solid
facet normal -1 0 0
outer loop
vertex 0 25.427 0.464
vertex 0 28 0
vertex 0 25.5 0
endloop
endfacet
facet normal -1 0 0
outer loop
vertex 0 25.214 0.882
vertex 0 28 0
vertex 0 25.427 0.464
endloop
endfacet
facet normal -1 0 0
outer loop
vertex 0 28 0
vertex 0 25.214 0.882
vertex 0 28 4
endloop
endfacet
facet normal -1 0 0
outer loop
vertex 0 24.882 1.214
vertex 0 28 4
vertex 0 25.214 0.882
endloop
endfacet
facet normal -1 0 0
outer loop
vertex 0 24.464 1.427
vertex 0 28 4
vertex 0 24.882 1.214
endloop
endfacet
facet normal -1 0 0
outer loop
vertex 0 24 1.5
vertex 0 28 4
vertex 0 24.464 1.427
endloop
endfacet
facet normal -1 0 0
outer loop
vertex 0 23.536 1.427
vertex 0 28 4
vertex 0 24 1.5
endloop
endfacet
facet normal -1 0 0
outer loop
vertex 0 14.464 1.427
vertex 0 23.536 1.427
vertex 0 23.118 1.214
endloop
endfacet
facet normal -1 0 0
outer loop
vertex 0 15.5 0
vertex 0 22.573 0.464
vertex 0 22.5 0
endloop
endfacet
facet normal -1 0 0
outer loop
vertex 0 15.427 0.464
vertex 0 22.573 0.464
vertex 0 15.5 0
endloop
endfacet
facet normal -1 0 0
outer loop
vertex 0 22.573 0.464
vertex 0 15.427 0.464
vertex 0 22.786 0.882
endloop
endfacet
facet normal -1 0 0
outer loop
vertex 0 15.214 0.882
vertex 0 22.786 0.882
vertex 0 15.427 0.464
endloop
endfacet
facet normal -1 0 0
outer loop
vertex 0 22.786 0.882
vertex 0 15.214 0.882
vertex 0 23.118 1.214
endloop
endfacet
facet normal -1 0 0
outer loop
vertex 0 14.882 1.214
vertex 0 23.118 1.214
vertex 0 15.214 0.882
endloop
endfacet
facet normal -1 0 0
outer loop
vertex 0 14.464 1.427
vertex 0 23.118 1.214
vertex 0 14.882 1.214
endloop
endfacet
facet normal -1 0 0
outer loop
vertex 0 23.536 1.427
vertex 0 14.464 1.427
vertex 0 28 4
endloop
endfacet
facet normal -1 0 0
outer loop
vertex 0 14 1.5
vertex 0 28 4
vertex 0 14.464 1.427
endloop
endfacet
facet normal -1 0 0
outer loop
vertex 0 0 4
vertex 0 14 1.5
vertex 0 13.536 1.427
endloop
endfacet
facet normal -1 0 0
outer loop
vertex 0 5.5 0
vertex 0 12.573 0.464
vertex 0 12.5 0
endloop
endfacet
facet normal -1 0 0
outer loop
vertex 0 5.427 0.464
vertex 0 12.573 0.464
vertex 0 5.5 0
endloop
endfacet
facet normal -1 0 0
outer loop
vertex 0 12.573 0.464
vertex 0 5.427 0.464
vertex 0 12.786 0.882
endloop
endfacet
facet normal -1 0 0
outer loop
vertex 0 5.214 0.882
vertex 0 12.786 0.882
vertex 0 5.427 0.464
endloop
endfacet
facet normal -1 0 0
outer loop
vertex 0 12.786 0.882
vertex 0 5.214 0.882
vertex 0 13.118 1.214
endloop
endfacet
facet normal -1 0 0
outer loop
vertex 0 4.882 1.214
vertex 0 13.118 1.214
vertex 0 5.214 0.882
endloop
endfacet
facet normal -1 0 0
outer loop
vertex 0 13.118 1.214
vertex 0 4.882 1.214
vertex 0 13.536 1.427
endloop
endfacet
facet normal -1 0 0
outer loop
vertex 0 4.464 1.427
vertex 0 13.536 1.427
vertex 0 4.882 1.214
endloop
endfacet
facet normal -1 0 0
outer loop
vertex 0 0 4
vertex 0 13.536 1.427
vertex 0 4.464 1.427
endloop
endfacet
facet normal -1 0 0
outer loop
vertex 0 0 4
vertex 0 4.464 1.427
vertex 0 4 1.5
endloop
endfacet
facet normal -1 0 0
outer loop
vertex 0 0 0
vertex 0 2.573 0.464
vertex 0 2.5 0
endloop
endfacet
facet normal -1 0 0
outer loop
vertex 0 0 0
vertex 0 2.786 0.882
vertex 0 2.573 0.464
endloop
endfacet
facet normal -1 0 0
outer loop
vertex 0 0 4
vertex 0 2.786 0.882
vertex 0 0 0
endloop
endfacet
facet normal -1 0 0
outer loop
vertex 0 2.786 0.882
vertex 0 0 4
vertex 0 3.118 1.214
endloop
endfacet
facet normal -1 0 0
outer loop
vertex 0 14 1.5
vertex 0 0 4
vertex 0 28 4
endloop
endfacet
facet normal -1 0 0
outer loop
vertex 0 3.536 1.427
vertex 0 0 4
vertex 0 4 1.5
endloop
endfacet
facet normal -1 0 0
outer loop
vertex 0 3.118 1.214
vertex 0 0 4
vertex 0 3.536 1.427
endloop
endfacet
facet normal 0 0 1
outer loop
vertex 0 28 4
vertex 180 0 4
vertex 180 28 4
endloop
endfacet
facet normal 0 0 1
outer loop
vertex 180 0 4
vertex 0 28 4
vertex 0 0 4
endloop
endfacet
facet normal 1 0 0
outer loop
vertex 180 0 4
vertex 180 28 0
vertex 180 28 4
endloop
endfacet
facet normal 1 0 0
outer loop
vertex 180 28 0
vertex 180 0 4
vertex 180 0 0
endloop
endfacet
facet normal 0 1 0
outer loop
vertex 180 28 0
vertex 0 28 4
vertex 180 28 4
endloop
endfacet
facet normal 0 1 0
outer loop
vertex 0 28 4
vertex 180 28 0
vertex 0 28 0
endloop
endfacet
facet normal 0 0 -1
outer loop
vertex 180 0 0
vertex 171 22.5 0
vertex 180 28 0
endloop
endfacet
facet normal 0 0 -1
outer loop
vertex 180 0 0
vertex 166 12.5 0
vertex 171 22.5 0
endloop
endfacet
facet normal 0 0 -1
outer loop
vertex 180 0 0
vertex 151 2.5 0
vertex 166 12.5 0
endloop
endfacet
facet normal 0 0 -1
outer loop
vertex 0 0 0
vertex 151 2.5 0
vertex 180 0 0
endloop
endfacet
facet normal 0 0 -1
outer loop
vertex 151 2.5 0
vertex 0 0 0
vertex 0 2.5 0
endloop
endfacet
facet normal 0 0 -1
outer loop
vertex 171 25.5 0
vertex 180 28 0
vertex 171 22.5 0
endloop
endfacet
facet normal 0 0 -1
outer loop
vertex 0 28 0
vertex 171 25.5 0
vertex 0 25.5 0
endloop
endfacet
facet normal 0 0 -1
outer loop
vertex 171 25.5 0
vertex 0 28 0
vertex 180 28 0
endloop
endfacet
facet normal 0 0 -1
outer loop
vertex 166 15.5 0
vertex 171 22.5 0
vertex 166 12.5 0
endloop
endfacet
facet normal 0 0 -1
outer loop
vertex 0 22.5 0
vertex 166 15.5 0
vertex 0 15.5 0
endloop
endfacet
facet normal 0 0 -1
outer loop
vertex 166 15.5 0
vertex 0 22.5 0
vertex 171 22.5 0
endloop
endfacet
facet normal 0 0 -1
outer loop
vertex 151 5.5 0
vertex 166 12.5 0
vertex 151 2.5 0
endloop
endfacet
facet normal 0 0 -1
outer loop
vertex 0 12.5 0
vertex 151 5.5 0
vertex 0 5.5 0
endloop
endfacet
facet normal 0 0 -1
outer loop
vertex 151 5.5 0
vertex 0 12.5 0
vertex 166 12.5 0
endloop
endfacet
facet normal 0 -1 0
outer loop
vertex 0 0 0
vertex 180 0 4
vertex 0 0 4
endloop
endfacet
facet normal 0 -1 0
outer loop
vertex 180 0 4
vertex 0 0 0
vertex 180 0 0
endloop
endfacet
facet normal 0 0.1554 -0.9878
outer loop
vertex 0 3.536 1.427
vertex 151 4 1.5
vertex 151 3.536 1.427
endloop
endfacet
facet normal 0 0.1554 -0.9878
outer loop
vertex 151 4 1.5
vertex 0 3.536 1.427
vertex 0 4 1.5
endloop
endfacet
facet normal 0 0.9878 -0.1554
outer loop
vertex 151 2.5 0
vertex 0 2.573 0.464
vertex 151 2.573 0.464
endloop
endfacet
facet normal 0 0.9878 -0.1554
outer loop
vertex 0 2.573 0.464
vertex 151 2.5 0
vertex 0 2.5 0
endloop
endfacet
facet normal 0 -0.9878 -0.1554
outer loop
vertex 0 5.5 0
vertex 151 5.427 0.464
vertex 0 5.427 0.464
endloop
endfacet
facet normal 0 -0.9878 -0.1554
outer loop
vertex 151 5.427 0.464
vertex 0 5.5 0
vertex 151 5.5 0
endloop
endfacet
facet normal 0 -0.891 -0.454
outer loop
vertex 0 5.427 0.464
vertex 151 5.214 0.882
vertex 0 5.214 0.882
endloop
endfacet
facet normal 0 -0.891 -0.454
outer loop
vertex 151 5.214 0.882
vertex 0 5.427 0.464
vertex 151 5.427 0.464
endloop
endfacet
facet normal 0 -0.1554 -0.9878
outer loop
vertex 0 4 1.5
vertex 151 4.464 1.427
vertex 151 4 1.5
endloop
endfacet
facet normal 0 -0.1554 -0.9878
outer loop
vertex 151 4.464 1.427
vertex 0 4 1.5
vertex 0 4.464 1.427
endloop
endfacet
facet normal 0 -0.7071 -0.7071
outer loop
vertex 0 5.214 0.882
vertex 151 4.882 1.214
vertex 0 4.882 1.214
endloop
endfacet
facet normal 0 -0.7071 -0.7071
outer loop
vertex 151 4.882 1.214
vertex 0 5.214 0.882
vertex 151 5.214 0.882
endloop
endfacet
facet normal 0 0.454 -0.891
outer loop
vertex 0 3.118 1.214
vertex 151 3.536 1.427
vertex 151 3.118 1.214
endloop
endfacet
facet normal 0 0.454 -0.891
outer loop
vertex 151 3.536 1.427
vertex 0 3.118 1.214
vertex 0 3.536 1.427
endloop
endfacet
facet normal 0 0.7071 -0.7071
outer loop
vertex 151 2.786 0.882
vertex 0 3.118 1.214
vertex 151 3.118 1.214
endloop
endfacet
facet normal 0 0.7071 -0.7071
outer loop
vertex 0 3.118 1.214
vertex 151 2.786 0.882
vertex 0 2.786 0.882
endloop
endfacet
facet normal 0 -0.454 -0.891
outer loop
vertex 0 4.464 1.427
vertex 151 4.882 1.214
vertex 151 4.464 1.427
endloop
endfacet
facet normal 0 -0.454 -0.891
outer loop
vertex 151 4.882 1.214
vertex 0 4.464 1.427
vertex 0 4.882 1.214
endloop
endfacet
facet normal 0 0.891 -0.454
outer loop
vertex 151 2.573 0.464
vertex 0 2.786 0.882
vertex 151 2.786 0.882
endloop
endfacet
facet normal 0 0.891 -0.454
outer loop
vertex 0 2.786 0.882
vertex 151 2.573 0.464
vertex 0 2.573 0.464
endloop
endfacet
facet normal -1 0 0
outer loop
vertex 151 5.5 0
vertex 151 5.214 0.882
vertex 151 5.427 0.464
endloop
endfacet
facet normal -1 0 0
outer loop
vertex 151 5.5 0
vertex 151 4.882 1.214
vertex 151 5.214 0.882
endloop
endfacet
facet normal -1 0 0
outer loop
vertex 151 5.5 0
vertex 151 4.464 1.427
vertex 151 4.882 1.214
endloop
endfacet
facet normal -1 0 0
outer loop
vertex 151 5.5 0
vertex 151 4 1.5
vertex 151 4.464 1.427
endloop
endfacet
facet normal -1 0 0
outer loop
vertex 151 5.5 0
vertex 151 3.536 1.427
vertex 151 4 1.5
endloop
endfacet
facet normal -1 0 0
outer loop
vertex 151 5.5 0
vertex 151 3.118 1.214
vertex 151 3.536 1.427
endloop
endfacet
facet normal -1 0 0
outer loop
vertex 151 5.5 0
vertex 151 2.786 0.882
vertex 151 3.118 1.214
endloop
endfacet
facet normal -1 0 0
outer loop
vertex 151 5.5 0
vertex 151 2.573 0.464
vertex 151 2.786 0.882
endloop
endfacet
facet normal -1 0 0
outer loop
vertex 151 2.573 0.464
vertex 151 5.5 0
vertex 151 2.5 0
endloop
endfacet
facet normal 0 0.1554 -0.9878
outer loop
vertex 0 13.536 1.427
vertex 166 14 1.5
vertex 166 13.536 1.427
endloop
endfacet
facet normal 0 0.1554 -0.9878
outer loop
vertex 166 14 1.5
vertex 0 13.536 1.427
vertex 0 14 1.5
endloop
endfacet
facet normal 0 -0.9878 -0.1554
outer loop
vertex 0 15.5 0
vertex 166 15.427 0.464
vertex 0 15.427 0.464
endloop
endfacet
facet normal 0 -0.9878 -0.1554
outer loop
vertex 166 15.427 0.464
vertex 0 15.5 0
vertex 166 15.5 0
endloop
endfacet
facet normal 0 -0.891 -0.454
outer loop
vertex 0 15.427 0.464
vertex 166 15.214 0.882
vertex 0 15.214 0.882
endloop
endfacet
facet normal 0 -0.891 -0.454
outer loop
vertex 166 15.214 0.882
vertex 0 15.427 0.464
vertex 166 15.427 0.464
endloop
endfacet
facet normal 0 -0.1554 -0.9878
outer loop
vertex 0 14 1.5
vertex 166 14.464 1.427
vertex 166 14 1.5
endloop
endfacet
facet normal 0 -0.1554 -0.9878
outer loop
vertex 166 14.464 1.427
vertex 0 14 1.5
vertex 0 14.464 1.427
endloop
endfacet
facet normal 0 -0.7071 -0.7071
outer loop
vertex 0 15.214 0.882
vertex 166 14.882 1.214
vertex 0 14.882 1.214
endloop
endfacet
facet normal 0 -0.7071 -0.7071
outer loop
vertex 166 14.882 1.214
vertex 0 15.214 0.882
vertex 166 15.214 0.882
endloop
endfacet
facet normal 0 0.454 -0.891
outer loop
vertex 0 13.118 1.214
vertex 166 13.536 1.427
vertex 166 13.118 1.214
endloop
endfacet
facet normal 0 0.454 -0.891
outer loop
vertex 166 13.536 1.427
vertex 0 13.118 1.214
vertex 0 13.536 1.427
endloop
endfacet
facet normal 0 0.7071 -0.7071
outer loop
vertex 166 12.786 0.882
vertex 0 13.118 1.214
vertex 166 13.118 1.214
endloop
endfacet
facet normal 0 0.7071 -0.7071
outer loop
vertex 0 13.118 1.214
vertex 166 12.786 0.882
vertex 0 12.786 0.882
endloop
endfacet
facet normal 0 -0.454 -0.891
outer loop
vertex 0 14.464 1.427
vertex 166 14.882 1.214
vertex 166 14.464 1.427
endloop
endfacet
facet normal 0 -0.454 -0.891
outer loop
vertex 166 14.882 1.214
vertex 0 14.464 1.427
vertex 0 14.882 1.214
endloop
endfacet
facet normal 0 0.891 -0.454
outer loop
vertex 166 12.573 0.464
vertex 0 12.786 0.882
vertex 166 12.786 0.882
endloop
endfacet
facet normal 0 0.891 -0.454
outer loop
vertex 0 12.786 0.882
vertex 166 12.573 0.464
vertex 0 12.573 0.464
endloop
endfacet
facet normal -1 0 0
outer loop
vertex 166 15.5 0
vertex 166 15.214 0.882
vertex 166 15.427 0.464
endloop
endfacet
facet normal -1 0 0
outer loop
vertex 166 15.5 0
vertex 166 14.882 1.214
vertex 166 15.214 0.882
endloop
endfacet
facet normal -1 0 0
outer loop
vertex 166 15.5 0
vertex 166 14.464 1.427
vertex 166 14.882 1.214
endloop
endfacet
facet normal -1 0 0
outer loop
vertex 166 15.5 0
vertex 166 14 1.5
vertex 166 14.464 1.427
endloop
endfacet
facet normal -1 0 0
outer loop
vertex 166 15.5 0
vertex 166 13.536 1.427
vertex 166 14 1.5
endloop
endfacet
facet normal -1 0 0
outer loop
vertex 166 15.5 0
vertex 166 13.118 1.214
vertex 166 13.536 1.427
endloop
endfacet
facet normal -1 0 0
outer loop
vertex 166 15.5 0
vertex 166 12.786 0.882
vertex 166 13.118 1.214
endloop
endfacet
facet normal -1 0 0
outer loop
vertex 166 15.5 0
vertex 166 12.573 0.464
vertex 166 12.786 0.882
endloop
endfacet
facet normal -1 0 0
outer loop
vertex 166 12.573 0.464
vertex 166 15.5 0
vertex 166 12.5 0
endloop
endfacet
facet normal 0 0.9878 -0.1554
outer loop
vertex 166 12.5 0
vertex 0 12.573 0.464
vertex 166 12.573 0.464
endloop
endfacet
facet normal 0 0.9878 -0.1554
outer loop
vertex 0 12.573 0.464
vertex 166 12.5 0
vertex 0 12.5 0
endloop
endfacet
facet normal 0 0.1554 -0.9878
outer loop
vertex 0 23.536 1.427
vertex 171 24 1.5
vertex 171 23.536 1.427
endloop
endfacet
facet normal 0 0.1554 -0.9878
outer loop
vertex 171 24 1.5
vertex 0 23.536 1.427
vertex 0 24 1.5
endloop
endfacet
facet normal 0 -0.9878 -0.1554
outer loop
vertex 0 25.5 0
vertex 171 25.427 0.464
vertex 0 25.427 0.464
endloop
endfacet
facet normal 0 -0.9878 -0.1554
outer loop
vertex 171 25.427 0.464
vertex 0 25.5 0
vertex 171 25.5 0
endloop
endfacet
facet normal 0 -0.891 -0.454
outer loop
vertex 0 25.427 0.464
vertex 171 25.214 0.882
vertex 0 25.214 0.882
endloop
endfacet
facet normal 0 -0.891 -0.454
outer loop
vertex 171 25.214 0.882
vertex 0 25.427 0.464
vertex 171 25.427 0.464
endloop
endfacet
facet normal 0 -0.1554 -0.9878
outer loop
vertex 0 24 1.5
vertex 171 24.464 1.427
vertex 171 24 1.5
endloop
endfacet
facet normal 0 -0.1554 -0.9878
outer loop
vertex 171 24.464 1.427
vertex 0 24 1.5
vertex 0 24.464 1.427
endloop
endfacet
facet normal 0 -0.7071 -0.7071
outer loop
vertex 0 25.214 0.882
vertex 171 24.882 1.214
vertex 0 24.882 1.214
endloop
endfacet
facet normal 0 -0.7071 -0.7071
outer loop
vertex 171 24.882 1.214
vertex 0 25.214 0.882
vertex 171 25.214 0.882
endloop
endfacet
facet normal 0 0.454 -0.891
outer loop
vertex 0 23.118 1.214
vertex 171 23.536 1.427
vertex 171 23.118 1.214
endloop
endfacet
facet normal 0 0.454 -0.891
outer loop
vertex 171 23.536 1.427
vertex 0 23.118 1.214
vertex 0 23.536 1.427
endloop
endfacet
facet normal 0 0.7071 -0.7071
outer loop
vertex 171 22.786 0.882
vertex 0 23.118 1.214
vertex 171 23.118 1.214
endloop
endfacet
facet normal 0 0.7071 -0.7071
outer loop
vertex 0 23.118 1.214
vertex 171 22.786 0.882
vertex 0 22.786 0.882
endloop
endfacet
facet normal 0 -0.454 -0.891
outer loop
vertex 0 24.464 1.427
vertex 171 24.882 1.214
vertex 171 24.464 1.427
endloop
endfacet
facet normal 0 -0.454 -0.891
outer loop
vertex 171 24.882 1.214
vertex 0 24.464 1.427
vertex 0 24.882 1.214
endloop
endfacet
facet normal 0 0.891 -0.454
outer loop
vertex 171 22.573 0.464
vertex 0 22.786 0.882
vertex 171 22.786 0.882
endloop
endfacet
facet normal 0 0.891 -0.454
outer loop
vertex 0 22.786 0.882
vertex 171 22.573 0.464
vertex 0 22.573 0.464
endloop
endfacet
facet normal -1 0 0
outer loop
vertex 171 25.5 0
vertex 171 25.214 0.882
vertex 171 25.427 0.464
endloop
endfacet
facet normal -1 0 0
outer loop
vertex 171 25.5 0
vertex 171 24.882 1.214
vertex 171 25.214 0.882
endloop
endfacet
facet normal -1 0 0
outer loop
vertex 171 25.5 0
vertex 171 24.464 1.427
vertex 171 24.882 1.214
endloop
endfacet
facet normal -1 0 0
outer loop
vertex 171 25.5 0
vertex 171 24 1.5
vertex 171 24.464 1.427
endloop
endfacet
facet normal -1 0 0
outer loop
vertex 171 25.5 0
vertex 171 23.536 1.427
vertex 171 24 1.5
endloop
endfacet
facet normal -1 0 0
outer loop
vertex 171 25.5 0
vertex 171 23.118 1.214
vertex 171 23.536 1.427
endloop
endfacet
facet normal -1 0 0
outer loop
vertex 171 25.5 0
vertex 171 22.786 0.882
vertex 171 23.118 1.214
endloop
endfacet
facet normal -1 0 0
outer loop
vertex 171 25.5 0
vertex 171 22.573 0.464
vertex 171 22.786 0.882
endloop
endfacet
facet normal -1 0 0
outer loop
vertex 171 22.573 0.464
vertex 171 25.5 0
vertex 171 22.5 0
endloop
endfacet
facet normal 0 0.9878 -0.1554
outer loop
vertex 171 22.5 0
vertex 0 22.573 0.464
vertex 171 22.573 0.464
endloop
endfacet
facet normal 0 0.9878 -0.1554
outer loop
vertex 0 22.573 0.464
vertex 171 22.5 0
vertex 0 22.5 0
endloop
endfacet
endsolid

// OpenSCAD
$fn=20;

module aligner(){
    render()difference(){
        cube([180,28,4]);
        translate([0,4,0])color("red")rotate(a=90,v=[0,1,0])cylinder(h=310/2-8/2, r=1.5);   
        translate([0,14,0])color("red")rotate(a=90,v=[0,1,0])cylinder(h=340/2-8/2, r=1.5);   
        translate([0,24,0])color("red")rotate(a=90,v=[0,1,0])cylinder(h=350/2-8/2, r=1.5); 
        
        
    }
      
}

aligner();
